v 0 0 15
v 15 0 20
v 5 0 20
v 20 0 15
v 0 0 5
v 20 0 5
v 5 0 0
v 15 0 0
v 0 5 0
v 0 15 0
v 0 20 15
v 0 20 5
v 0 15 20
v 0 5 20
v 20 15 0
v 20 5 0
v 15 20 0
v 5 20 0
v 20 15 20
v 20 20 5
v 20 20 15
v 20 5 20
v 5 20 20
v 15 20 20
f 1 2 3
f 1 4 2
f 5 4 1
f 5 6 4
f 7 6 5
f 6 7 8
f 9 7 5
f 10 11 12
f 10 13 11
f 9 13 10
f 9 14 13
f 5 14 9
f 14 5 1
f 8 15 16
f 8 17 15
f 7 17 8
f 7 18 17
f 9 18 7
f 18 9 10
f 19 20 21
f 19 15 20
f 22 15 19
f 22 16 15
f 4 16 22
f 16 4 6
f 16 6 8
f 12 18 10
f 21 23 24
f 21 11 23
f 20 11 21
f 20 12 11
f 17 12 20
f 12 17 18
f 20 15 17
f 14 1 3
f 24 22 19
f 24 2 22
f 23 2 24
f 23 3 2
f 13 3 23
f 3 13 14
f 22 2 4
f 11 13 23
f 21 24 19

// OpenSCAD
module corner_cutout(d) {
    #polyhedron(points=[[0,0,0],     // origin
                        [d,0,0],     // on x axis
                        [0,d,0],     // on y axis
                        [0,0,d]],    // on z axis
                faces=[[0,3,1],      // on x axis
                       [0,2,3],      // on y axis
                       [0,1,2],      // on z axis
                       [1,3,2]]);    // diagonal
}

module four_corner_cutout(x,y,z,d) {
    corner_cutout(d);
    translate([x,0,0]) rotate([0,0,90]) corner_cutout(d);
    translate([0,y,0]) rotate([0,0,-90]) corner_cutout(d);
    translate([x,y,0]) rotate([0,0,180]) corner_cutout(d);
}
module eight_corner_cutout(x,y,z,d) {
    four_corner_cutout(x,y,z,d);
    translate([0,0,z]) mirror([0,0,1]) four_corner_cutout(x,y,z,d);
}

module cutout_cube(x,y,z,d) {
    difference() {
        cube([x,y,z]);
        eight_corner_cutout(x,y,z,d);
    }
}
module test() {
    cutout_cube(20,20,20,5);
}

test();
